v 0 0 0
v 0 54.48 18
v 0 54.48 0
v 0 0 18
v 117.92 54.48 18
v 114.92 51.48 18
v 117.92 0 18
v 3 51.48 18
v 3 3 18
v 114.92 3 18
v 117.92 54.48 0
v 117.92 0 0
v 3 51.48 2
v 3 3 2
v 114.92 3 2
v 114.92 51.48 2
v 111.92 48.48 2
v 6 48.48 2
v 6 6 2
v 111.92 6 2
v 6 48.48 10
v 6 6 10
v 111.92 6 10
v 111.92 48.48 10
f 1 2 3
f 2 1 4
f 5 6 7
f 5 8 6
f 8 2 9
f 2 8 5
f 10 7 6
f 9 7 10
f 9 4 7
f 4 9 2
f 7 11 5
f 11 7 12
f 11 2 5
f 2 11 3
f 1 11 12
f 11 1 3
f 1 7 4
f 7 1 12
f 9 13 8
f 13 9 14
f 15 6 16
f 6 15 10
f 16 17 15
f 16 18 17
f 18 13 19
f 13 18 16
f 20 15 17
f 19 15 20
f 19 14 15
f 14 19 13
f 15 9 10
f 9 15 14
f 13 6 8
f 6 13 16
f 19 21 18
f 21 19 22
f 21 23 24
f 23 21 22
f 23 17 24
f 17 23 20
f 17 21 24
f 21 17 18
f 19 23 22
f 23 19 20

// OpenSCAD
//Taken from Python key label script...
BUTTON_COUNT_X=5;
BUTTON_COUNT_Y=8;

BUTTON_WIDTH=120;
BUTTON_HEIGHT=80;
BUTTON_GAP_HORZ=32.4;
BUTTON_GAP_VERT=72.4;
BUTTON_BORDER_HORZ=20;
BUTTON_BORDER_VERT=20;

//Added for test
BUTTON_DEPTH=20;
KEYPAD_BORDER_HORZ=BUTTON_GAP_HORZ;
KEYPAD_WIDTH=BUTTON_COUNT_X*(BUTTON_WIDTH+BUTTON_GAP_HORZ)+BUTTON_GAP_HORZ+KEYPAD_BORDER_HORZ*2;
KEYPAD_HEIGHT=BUTTON_HEIGHT+2*BUTTON_GAP_VERT;

//Mold box
MOLD_GAP_HORZ=100;
MOLD_GAP_VERT=100;
MOLD_FLOOR_THICKNESS=20;
MOLD_WALL_HEIGHT=80;
MOLD_WALL_THICKNESS=30;

module keypad_row()
{
  difference()
  {
    //keypad layer
    cube([KEYPAD_WIDTH,KEYPAD_HEIGHT,BUTTON_DEPTH]);

    //key holes
    for (i=[0:BUTTON_COUNT_X-1])
    {
      translate([BUTTON_GAP_HORZ+i*(BUTTON_WIDTH+BUTTON_GAP_HORZ)+KEYPAD_BORDER_HORZ,BUTTON_GAP_VERT,-1])
      cube([BUTTON_WIDTH,BUTTON_HEIGHT,BUTTON_DEPTH+2]);
    }
  }
}

module mold()
{
  difference()
  {
    //outside block
    cube([KEYPAD_WIDTH+MOLD_GAP_HORZ*2+MOLD_WALL_THICKNESS*2,
    KEYPAD_HEIGHT+MOLD_GAP_VERT*2+MOLD_WALL_THICKNESS*2,
    MOLD_FLOOR_THICKNESS+MOLD_WALL_HEIGHT]);
    
    //hollow out inside
    translate([MOLD_WALL_THICKNESS,MOLD_WALL_THICKNESS,
      MOLD_FLOOR_THICKNESS])
    cube([KEYPAD_WIDTH+MOLD_GAP_HORZ*2,
    KEYPAD_HEIGHT+MOLD_GAP_VERT*2,
    MOLD_WALL_HEIGHT+1]);
  }
}

/*
scale([0.1,0.1,0.1])
union()
{
  mold();
  translate([MOLD_GAP_HORZ+MOLD_WALL_THICKNESS,MOLD_GAP_VERT+MOLD_WALL_THICKNESS,MOLD_FLOOR_THICKNESS])
  keypad_row();
}
*/

INNER_WIDTH=KEYPAD_WIDTH+MOLD_GAP_HORZ*2;
INNER_LENGTH=KEYPAD_HEIGHT+MOLD_GAP_VERT*2;
INNER_HEIGHT=MOLD_WALL_HEIGHT;

module outer()
{
  union()
  {
  difference()
  {
    //outside block (new for outer)
    cube([INNER_WIDTH+4*MOLD_WALL_THICKNESS,
    INNER_LENGTH+4*MOLD_WALL_THICKNESS,
    2*INNER_HEIGHT+MOLD_FLOOR_THICKNESS]);
   
    //outside block of original mold
    //(inside block of outer)
    translate([MOLD_WALL_THICKNESS,MOLD_WALL_THICKNESS, MOLD_FLOOR_THICKNESS])
    cube([INNER_WIDTH+2*MOLD_WALL_THICKNESS,INNER_LENGTH+2*MOLD_WALL_THICKNESS,2*INNER_HEIGHT+1]);
  }
  
  //outline of original mold
  translate([2*MOLD_WALL_THICKNESS,2*MOLD_WALL_THICKNESS, MOLD_FLOOR_THICKNESS])
  cube([INNER_WIDTH,INNER_LENGTH,INNER_HEIGHT]);
  }
}

scale([0.1,0.1,0.1])
outer();
